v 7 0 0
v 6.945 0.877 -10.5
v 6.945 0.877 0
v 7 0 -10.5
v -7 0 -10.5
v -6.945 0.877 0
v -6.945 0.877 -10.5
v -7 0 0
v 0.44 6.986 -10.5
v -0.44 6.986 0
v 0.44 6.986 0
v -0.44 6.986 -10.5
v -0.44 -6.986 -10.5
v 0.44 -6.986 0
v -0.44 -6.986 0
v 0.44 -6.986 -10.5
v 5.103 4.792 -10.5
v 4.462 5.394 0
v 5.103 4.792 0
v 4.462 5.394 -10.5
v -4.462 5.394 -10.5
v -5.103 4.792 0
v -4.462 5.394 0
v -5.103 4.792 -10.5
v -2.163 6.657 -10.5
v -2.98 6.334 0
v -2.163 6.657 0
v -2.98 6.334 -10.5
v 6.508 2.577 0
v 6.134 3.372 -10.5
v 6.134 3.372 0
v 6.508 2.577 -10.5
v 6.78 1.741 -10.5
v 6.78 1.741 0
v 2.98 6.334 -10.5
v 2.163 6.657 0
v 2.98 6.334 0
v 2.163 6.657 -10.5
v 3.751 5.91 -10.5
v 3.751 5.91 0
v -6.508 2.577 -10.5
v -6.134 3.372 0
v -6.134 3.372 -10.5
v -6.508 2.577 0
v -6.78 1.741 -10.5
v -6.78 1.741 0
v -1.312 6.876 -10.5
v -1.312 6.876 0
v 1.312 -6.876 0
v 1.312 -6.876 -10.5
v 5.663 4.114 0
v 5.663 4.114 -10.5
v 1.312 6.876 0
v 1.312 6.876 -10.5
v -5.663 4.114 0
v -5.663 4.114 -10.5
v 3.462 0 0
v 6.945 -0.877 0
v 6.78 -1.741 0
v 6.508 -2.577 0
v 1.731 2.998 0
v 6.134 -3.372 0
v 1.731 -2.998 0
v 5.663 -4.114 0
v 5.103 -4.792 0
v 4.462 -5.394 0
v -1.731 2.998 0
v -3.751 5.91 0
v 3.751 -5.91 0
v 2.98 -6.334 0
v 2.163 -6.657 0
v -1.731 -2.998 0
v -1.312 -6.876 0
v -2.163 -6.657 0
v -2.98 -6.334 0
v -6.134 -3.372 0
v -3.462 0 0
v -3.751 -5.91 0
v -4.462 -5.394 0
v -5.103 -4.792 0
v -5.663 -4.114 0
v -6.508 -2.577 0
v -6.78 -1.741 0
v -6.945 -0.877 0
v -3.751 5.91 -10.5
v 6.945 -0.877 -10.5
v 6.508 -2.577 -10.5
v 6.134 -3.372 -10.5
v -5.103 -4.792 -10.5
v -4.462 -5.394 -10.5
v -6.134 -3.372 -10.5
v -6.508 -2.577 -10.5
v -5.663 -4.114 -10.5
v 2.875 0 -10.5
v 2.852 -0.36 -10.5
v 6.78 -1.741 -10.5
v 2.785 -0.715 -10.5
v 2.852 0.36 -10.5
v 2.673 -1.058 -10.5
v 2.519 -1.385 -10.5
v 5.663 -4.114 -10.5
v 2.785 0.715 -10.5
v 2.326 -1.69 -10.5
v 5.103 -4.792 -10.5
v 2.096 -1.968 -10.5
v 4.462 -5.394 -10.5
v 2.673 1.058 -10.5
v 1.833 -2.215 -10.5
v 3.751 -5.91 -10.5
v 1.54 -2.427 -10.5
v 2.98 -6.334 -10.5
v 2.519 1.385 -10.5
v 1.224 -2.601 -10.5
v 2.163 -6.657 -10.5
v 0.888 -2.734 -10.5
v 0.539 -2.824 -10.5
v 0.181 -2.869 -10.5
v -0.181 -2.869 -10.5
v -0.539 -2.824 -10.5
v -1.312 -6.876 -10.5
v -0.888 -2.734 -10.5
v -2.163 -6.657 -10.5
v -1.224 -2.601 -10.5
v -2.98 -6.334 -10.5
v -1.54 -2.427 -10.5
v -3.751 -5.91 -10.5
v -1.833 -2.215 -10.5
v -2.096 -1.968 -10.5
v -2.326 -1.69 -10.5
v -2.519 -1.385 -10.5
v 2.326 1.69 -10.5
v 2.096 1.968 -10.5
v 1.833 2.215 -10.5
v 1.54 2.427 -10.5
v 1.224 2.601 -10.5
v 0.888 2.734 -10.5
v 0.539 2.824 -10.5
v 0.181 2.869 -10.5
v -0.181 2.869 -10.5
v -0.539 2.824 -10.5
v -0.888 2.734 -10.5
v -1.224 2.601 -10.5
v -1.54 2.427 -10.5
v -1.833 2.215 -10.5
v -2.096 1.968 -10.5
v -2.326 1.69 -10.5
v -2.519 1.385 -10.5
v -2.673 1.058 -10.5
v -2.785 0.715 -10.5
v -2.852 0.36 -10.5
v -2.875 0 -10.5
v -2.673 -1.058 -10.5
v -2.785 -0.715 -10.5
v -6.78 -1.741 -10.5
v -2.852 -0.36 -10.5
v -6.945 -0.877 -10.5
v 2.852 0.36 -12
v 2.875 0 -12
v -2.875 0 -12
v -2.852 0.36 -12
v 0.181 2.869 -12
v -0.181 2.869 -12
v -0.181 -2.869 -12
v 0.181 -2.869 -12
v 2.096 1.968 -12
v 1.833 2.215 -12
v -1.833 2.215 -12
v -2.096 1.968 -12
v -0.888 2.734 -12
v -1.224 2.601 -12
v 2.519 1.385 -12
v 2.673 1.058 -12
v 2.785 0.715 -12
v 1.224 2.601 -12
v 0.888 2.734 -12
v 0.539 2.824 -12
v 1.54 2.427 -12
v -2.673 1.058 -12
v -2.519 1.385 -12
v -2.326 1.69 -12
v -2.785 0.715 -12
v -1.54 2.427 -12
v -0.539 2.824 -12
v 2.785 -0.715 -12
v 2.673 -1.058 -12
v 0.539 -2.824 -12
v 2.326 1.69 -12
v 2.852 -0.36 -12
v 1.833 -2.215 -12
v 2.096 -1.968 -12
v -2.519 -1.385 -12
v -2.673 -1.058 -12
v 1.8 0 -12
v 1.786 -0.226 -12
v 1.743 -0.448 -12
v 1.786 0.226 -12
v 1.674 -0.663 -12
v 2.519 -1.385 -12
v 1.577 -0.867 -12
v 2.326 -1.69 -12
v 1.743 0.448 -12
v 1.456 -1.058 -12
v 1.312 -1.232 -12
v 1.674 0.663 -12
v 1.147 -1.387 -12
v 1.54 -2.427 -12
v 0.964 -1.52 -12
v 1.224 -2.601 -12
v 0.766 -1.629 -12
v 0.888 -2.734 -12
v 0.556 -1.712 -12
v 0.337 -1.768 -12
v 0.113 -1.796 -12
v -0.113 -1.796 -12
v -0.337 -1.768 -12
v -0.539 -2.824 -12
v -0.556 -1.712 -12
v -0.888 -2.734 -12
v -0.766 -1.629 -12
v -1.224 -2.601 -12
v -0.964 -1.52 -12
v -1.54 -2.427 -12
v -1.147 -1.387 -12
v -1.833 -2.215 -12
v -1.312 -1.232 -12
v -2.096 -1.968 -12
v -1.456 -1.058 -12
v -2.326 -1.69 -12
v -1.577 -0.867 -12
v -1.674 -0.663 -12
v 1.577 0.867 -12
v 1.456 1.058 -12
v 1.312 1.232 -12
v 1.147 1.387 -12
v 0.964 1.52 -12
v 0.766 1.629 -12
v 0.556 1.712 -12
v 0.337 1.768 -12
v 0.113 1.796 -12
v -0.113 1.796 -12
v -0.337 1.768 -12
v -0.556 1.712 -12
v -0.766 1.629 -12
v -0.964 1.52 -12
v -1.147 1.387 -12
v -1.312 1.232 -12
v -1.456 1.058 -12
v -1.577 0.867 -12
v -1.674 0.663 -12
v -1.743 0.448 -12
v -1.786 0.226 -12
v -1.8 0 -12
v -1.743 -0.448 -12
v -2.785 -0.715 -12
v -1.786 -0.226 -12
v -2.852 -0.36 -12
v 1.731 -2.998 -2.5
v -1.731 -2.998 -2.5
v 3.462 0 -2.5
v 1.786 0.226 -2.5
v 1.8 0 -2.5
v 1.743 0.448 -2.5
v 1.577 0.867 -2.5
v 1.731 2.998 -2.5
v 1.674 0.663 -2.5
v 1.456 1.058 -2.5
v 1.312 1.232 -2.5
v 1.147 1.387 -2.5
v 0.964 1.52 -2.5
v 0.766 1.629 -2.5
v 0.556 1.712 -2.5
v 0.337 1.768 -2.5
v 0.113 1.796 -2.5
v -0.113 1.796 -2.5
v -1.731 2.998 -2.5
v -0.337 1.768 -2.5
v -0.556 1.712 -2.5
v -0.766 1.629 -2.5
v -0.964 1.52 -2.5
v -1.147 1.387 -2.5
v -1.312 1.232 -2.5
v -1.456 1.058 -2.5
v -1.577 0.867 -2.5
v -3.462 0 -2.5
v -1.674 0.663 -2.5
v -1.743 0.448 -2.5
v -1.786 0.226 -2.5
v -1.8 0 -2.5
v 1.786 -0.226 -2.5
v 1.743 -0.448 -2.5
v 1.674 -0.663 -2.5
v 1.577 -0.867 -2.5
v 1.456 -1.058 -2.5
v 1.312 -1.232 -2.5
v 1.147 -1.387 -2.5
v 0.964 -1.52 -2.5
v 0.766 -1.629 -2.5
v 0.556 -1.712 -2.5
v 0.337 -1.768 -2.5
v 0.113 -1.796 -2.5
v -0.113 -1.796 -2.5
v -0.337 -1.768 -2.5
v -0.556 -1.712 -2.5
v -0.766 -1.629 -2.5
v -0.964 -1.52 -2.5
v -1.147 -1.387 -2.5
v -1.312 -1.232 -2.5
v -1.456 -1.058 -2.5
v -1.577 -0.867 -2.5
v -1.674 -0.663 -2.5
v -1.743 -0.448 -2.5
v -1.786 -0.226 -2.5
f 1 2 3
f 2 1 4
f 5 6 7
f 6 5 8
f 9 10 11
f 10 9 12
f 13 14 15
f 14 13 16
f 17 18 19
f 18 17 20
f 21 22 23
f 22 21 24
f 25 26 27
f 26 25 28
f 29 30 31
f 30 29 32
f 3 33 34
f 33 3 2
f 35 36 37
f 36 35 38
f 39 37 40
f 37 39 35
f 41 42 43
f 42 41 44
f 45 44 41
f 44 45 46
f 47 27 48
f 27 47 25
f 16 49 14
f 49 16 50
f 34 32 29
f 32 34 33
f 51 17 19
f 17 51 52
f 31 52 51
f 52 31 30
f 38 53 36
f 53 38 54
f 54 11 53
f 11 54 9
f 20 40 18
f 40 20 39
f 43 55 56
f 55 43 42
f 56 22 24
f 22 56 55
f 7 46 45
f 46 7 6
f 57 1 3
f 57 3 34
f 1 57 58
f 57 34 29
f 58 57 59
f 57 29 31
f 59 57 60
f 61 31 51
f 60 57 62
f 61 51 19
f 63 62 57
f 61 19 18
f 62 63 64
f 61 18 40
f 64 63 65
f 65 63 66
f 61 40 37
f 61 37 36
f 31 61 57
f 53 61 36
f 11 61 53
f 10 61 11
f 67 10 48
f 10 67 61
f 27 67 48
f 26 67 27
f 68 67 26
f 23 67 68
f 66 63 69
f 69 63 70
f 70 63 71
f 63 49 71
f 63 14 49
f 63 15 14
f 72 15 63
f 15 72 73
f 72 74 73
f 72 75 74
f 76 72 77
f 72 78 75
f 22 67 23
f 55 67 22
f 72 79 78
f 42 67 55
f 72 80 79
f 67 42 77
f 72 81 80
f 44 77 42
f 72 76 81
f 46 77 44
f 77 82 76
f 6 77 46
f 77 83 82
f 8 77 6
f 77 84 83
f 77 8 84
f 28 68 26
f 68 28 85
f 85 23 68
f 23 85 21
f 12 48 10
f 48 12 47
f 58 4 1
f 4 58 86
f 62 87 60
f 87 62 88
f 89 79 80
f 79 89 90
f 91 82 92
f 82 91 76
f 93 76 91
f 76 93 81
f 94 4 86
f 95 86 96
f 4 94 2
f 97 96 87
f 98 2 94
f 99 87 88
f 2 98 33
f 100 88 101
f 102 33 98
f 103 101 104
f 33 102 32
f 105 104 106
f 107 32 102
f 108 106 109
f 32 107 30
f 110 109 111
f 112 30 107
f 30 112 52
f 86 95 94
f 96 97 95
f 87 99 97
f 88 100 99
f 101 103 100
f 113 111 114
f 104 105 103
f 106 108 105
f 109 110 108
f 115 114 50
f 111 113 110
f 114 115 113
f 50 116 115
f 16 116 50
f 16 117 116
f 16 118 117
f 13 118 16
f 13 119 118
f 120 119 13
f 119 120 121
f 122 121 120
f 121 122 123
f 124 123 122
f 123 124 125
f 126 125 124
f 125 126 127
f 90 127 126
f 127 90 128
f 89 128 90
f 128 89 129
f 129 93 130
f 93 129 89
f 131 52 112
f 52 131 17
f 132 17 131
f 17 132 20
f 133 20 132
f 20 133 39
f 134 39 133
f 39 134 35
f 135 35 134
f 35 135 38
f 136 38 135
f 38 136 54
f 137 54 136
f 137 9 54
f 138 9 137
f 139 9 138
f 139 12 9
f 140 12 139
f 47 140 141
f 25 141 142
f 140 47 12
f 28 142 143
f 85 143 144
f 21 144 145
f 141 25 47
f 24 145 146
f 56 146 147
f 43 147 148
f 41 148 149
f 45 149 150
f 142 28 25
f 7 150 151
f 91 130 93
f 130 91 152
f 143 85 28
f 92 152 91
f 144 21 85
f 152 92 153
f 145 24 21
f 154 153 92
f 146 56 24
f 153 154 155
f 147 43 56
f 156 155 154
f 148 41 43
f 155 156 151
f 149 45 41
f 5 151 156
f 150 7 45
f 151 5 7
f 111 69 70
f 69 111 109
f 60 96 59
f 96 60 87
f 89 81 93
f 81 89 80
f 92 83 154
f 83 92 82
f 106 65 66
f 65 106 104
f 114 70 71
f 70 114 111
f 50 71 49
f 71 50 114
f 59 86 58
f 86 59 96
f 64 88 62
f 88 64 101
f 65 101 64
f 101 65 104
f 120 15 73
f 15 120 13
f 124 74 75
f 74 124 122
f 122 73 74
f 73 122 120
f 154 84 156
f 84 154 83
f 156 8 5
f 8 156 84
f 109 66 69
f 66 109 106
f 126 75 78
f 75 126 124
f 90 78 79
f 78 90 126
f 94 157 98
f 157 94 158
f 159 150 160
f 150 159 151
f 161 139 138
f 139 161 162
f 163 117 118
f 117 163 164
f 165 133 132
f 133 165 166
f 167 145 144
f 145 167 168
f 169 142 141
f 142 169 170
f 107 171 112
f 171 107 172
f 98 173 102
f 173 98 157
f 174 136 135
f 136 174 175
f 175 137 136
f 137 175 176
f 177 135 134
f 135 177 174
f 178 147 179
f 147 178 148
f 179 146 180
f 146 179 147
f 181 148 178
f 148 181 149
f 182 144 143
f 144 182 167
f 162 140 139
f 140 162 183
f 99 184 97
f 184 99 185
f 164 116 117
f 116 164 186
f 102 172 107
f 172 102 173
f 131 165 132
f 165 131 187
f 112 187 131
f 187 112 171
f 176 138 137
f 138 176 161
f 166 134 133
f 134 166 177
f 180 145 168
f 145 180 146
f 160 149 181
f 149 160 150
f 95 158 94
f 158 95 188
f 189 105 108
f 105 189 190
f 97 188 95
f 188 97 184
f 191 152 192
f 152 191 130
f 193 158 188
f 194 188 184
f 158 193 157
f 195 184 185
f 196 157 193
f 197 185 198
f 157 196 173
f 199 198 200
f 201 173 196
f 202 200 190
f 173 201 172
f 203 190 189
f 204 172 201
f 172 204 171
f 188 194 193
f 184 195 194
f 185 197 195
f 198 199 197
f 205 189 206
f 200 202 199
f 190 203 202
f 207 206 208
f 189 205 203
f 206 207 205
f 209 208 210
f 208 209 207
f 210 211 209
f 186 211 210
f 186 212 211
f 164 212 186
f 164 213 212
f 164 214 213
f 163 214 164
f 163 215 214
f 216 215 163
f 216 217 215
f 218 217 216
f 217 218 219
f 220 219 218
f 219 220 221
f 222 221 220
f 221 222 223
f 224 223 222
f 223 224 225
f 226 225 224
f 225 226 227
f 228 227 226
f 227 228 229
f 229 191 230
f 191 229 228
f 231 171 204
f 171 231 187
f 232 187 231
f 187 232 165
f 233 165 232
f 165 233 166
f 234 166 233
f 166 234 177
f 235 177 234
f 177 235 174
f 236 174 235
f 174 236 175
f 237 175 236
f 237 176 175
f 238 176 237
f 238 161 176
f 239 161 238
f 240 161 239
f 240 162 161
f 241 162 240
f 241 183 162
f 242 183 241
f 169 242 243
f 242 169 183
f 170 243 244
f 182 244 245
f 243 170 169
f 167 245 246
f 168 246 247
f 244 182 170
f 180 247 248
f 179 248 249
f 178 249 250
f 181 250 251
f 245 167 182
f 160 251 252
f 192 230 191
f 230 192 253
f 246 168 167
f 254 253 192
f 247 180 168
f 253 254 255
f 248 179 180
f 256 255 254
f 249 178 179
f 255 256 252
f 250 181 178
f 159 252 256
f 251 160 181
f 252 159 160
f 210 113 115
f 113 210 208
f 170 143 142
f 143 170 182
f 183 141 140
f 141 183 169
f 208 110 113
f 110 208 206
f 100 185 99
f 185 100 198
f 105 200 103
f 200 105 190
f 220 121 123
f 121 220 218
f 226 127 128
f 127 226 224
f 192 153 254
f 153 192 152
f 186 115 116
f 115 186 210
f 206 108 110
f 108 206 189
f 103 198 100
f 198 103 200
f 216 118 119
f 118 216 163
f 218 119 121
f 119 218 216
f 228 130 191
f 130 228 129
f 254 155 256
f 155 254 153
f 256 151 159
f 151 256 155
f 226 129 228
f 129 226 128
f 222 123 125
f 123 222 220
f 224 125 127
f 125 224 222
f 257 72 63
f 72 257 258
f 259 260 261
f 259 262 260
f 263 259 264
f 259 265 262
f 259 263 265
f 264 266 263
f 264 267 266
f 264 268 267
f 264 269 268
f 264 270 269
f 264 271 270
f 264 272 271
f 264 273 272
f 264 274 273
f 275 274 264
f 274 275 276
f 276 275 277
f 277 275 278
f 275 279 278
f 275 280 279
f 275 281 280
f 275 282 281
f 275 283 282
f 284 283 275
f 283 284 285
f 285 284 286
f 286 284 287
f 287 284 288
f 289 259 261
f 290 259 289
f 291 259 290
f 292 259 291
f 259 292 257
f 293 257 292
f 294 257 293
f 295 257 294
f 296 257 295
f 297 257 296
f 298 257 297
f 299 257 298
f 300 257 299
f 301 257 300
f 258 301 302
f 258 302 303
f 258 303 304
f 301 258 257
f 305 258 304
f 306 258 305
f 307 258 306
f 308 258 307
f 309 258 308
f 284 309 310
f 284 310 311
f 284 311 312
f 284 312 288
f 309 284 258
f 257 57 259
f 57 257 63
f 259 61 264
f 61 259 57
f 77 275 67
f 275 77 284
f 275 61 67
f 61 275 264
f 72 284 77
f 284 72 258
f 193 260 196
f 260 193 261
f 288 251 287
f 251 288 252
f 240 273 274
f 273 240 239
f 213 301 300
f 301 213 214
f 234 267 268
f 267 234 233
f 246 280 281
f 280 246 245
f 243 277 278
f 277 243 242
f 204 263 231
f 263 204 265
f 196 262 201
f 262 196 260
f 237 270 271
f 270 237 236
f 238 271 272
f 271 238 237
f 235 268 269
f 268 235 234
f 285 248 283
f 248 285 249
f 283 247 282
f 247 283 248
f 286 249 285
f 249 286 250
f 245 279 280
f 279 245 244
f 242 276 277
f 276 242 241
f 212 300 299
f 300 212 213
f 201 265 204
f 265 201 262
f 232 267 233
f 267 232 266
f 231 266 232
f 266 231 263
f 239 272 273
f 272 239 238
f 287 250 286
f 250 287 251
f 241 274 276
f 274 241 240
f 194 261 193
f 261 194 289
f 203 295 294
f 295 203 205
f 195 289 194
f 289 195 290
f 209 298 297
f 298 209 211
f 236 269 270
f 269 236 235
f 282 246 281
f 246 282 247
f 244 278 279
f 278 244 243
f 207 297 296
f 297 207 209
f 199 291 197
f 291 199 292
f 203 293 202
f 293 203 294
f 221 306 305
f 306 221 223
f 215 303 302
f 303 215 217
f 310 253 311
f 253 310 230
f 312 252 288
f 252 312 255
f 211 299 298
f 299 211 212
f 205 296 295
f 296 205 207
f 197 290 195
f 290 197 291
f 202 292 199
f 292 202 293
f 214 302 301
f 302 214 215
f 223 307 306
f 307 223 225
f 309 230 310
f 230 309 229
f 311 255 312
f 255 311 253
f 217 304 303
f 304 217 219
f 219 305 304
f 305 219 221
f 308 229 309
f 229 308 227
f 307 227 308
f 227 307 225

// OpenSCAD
$fn = 50;


difference() {
	union() {
		translate(v = [0, 0, -10.5000000000]) {
			cylinder(h = 10.5000000000, r = 7.0000000000);
		}
		translate(v = [0, 0, -12.0000000000]) {
			cylinder(h = 12, r = 2.8750000000);
		}
	}
	union() {
		translate(v = [0, 0, 0]) {
			rotate(a = [0, 0, 0]) {
				difference() {
					union() {
						translate(v = [0, 0, -2.5000000000]) {
							linear_extrude(height = 2.5000000000) {
								polygon(points = [[3.4620000000, 0.0000000000], [1.7310000000, 2.9981799479], [-1.7310000000, 2.9981799479], [-3.4620000000, 0.0000000000], [-1.7310000000, -2.9981799479], [1.7310000000, -2.9981799479]]);
							}
						}
					}
					union();
				}
			}
		}
		#translate(v = [0, 0, -100.0000000000]) {
			cylinder(h = 200, r = 1.8000000000);
		}
	}
}
